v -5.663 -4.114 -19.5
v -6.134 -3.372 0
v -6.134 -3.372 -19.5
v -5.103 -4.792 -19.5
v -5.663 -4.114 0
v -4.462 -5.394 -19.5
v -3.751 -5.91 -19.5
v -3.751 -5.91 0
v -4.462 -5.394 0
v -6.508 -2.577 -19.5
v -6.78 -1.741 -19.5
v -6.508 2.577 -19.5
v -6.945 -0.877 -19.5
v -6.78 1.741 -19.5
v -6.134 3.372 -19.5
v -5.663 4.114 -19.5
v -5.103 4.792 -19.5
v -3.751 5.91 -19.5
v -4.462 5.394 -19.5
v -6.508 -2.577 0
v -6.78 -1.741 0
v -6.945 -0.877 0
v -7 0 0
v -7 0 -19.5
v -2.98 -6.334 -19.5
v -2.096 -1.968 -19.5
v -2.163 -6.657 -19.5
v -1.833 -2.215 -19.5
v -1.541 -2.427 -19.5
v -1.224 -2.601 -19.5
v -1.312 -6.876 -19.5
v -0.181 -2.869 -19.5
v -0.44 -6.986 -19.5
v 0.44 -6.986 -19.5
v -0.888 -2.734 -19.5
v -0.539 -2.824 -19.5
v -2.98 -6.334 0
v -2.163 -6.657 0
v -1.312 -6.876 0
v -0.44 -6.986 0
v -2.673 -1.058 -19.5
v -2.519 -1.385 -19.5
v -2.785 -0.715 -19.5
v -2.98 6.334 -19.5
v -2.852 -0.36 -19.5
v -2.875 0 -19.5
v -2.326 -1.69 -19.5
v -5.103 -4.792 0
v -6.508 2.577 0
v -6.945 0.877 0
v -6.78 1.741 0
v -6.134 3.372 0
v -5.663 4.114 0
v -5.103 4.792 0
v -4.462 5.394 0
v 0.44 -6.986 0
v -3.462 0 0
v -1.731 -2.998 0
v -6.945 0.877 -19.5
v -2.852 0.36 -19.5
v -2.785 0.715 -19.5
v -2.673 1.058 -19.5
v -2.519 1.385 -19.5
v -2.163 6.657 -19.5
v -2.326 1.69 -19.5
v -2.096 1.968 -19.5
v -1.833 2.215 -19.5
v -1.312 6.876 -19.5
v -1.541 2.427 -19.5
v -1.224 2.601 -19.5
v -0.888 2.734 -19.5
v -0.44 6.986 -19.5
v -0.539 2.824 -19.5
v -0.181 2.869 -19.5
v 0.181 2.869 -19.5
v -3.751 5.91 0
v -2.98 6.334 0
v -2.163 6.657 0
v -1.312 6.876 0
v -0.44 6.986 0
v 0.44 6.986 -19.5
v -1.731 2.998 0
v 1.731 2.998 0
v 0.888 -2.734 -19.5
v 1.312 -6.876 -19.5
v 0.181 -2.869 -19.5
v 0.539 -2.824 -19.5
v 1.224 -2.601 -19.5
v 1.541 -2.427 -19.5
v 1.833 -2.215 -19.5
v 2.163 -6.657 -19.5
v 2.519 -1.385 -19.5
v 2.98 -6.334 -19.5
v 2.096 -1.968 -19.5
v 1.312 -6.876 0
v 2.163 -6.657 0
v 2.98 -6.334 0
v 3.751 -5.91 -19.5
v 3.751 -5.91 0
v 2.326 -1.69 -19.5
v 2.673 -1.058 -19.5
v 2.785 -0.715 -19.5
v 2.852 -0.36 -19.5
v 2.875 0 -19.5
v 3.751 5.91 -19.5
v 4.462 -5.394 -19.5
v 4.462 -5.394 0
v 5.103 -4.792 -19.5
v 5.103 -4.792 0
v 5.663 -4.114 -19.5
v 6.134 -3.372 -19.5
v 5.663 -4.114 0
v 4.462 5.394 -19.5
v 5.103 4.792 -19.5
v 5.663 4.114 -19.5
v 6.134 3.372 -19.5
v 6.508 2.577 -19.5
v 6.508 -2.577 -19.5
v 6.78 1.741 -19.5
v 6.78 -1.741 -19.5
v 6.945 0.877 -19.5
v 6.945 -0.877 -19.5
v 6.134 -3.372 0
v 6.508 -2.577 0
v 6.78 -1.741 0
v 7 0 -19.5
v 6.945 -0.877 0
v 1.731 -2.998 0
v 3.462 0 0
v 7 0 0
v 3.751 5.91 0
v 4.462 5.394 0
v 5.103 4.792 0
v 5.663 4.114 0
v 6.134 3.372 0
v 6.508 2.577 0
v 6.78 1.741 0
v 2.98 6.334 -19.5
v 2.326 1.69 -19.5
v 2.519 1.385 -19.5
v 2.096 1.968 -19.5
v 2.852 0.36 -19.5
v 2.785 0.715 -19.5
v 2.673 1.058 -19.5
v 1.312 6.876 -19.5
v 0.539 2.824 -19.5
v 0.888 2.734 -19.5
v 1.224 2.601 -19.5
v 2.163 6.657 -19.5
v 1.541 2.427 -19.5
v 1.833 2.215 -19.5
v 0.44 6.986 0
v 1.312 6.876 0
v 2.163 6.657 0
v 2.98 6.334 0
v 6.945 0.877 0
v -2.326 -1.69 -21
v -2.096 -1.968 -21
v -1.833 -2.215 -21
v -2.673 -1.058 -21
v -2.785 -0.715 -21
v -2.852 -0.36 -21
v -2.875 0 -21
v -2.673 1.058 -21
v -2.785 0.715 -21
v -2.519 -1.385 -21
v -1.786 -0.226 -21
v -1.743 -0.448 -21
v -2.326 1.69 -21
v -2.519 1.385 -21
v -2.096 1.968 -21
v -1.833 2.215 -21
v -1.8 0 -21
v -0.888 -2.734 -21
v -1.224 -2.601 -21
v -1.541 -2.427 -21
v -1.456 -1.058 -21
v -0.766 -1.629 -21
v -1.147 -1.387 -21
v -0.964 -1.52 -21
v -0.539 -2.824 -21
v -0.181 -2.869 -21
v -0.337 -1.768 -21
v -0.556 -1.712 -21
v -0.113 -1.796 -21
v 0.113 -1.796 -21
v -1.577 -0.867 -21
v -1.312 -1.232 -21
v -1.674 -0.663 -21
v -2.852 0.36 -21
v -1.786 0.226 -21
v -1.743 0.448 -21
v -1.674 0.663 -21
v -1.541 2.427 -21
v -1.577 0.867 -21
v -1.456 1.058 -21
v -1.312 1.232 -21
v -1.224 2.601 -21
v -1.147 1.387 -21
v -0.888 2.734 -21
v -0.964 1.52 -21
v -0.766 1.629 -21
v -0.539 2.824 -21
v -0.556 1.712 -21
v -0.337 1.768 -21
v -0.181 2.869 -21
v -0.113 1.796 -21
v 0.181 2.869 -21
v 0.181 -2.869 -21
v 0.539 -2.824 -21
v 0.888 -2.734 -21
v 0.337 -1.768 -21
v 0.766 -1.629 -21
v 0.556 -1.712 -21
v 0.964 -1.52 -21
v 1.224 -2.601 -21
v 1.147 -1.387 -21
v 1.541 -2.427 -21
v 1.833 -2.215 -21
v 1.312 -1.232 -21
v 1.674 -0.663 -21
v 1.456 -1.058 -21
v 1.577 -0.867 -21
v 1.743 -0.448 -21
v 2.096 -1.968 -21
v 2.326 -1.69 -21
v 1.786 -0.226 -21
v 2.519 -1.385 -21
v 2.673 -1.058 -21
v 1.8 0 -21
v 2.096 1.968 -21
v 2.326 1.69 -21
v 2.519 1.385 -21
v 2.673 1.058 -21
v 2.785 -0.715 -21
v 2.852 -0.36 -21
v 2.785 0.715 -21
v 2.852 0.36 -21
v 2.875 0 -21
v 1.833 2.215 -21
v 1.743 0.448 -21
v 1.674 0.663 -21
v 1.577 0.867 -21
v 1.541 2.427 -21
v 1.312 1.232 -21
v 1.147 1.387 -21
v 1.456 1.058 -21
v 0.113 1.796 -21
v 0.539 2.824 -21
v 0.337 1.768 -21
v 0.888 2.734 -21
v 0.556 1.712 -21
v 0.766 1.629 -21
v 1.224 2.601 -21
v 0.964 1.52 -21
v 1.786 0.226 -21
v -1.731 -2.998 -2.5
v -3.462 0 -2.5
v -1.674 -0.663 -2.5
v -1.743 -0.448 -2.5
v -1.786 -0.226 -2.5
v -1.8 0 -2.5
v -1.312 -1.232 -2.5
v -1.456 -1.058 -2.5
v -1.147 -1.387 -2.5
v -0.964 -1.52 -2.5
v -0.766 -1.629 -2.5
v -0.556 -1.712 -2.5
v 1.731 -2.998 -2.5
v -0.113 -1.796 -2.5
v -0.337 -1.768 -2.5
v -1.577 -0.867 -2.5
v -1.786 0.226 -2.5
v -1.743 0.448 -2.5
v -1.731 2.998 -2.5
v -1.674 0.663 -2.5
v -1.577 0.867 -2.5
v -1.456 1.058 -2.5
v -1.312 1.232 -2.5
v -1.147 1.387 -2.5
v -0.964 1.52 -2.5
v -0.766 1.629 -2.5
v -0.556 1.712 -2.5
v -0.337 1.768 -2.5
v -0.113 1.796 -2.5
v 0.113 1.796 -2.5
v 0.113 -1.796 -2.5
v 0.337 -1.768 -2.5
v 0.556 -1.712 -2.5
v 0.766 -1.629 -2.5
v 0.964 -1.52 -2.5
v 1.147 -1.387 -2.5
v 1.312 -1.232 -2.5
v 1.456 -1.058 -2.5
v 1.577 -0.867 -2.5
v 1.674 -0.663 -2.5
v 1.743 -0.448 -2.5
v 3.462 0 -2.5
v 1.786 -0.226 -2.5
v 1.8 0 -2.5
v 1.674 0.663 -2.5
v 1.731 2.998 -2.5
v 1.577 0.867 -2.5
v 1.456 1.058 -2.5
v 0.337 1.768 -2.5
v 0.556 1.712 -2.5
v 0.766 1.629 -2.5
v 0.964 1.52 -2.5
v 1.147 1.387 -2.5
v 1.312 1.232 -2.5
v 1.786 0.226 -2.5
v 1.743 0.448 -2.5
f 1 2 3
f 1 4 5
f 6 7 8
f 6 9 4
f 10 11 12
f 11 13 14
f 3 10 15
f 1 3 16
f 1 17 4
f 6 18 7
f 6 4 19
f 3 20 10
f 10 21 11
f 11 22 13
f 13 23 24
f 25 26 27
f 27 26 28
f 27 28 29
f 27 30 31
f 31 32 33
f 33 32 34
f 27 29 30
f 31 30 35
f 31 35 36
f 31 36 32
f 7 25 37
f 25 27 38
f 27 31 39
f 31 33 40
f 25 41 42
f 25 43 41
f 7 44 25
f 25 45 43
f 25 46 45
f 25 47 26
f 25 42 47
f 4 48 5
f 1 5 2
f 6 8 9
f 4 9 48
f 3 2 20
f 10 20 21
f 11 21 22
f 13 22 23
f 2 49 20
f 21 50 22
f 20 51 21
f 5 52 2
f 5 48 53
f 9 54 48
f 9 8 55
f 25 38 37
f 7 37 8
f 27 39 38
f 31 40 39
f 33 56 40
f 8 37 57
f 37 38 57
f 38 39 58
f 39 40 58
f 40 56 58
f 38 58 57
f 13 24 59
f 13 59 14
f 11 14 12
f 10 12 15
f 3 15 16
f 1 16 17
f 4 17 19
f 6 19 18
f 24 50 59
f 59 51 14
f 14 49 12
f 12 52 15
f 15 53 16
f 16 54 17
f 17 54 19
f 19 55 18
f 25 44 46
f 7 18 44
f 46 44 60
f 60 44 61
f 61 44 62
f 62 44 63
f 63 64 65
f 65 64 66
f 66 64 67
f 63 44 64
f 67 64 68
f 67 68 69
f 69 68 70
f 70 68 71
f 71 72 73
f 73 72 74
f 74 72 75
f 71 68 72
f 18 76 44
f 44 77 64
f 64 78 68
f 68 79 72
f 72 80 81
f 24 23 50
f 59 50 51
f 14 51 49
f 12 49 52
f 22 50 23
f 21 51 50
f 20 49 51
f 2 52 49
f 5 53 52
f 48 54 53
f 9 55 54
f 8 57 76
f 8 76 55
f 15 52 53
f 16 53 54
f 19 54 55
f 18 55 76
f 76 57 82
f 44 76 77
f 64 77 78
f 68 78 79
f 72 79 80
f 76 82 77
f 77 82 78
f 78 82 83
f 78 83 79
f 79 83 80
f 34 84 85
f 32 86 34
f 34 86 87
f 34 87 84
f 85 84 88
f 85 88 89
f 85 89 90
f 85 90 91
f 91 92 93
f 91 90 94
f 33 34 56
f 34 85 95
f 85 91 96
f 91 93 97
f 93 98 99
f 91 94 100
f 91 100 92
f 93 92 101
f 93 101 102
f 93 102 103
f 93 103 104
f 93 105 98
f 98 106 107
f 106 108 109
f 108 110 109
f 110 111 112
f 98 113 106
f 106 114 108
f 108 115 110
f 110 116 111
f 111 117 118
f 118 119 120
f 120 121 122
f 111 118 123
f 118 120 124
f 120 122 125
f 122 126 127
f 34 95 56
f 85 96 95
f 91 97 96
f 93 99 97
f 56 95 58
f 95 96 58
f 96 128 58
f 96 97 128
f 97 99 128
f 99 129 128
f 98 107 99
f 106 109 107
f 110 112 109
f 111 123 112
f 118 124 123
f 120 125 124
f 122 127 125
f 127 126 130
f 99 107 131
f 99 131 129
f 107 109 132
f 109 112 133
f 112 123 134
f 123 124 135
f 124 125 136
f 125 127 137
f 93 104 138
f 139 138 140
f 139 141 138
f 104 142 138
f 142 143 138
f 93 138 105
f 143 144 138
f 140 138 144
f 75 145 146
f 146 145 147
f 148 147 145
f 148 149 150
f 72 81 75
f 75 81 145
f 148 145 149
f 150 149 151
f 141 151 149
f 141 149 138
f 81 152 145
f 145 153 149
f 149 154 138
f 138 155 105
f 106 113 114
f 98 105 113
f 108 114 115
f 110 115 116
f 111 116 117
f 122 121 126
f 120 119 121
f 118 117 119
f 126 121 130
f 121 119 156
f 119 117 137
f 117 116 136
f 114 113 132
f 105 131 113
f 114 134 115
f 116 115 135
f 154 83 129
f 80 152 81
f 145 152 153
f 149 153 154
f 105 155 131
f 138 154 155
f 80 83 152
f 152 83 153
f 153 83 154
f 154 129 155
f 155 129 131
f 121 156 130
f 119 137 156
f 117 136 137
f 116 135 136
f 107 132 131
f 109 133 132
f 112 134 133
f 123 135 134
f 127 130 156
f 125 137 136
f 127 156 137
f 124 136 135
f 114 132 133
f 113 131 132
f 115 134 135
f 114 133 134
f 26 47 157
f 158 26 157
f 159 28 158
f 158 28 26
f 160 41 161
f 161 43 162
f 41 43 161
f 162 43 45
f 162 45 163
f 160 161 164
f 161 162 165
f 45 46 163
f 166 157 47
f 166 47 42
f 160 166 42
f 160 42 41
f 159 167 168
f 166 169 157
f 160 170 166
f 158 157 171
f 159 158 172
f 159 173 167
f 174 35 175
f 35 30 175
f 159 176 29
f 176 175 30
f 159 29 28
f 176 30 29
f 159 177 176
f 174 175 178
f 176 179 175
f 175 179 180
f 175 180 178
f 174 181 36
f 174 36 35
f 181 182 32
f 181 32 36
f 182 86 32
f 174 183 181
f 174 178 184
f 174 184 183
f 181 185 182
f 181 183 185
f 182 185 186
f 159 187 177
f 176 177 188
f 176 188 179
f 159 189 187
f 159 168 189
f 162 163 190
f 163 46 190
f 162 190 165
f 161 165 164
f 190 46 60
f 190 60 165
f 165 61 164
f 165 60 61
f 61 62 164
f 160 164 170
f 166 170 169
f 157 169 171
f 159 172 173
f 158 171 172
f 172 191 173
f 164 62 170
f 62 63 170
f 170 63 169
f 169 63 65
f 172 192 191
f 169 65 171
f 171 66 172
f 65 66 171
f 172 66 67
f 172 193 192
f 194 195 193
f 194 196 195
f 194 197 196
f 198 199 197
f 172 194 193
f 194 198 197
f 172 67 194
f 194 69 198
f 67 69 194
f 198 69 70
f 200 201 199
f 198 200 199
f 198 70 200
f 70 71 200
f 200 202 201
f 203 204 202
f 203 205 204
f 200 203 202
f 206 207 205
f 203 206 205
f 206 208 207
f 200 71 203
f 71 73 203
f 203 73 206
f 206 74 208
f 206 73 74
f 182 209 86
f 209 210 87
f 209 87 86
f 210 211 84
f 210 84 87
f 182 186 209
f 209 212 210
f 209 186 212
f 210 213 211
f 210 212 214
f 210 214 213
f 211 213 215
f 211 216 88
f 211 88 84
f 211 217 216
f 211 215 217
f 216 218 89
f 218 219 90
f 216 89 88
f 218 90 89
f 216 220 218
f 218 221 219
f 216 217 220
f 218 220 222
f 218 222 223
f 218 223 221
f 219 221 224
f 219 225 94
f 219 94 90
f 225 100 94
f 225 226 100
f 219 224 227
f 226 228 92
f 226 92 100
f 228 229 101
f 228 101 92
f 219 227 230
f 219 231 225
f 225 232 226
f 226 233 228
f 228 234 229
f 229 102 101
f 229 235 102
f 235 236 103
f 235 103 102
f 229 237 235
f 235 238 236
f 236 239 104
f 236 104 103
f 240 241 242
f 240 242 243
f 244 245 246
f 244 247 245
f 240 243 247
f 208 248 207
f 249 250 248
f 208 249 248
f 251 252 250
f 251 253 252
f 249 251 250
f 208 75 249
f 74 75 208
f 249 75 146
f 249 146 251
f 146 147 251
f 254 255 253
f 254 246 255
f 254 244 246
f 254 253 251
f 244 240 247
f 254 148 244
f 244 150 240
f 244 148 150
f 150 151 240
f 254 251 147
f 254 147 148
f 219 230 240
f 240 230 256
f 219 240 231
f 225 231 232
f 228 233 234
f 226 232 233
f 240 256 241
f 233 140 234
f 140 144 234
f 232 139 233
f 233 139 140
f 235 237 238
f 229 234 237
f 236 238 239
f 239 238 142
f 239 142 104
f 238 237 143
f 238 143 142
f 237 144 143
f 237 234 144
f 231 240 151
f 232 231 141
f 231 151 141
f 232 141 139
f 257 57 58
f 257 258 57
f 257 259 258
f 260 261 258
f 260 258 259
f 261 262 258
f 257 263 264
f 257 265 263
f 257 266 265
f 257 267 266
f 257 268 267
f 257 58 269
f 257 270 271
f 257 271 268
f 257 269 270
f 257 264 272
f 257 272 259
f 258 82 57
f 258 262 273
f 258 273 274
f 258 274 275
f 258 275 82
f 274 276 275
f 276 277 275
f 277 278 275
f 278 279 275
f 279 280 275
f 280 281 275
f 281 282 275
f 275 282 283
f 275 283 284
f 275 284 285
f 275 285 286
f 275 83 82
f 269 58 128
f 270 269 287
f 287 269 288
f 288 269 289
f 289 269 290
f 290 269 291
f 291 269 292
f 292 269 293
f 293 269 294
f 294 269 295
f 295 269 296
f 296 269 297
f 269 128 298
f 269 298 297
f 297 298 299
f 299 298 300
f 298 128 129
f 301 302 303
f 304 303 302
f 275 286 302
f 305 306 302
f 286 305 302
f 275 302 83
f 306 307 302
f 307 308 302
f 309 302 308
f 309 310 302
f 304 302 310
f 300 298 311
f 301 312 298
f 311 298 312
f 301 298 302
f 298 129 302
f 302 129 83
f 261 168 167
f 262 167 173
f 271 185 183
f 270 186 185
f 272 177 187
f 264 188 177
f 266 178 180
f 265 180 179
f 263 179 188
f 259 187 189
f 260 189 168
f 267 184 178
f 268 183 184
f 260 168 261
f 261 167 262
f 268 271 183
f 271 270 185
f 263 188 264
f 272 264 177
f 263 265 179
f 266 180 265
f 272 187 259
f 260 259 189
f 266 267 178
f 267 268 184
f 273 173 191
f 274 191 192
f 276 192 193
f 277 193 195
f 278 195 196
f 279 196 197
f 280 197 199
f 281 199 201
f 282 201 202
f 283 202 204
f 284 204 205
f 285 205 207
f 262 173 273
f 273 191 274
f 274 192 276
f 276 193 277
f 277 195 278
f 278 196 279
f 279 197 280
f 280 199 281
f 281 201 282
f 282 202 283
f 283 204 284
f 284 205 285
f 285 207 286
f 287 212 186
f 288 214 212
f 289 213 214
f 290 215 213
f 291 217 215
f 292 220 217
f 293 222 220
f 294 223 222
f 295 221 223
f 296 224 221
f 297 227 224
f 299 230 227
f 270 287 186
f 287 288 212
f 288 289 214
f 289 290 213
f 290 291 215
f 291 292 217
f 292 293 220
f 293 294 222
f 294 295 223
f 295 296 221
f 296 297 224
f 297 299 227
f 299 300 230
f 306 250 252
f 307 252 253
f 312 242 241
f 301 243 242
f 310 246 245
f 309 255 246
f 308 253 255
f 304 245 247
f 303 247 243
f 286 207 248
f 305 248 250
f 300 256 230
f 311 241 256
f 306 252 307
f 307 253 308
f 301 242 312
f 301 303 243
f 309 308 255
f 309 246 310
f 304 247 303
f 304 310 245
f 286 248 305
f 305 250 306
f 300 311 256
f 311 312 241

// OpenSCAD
$fn = 50;

difference() {
	union() {
		translate(v = [0, 0, -19.5]) {
			cylinder(h = 19.5, r = 7.0);
		}
		#translate(v = [0, 0, -21.0]) {
			cylinder(h = 21, r = 2.875);
		}
	}
	union() {
		translate(v = [0, 0, 0]) {
			rotate(a = [0, 0, 0]) {
				difference() {
					union() {
						translate(v = [0, 0, -2.5]) {
							linear_extrude(height = 2.5) {
								polygon(points = [[3.4619999999999997, 0.0], [1.7310000000000003, 2.9981799479017264], [-1.7309999999999992, 2.9981799479017264], [-3.4619999999999997, 4.2397272186481365e-16], [-1.7310000000000014, -2.998179947901726], [1.7309999999999977, -2.9981799479017277]]);
							}
						}
					}
					union();
				}
			}
		}
		#translate(v = [0, 0, -100.0]) {
			cylinder(h = 200, r = 1.8);
		}
	}
}
